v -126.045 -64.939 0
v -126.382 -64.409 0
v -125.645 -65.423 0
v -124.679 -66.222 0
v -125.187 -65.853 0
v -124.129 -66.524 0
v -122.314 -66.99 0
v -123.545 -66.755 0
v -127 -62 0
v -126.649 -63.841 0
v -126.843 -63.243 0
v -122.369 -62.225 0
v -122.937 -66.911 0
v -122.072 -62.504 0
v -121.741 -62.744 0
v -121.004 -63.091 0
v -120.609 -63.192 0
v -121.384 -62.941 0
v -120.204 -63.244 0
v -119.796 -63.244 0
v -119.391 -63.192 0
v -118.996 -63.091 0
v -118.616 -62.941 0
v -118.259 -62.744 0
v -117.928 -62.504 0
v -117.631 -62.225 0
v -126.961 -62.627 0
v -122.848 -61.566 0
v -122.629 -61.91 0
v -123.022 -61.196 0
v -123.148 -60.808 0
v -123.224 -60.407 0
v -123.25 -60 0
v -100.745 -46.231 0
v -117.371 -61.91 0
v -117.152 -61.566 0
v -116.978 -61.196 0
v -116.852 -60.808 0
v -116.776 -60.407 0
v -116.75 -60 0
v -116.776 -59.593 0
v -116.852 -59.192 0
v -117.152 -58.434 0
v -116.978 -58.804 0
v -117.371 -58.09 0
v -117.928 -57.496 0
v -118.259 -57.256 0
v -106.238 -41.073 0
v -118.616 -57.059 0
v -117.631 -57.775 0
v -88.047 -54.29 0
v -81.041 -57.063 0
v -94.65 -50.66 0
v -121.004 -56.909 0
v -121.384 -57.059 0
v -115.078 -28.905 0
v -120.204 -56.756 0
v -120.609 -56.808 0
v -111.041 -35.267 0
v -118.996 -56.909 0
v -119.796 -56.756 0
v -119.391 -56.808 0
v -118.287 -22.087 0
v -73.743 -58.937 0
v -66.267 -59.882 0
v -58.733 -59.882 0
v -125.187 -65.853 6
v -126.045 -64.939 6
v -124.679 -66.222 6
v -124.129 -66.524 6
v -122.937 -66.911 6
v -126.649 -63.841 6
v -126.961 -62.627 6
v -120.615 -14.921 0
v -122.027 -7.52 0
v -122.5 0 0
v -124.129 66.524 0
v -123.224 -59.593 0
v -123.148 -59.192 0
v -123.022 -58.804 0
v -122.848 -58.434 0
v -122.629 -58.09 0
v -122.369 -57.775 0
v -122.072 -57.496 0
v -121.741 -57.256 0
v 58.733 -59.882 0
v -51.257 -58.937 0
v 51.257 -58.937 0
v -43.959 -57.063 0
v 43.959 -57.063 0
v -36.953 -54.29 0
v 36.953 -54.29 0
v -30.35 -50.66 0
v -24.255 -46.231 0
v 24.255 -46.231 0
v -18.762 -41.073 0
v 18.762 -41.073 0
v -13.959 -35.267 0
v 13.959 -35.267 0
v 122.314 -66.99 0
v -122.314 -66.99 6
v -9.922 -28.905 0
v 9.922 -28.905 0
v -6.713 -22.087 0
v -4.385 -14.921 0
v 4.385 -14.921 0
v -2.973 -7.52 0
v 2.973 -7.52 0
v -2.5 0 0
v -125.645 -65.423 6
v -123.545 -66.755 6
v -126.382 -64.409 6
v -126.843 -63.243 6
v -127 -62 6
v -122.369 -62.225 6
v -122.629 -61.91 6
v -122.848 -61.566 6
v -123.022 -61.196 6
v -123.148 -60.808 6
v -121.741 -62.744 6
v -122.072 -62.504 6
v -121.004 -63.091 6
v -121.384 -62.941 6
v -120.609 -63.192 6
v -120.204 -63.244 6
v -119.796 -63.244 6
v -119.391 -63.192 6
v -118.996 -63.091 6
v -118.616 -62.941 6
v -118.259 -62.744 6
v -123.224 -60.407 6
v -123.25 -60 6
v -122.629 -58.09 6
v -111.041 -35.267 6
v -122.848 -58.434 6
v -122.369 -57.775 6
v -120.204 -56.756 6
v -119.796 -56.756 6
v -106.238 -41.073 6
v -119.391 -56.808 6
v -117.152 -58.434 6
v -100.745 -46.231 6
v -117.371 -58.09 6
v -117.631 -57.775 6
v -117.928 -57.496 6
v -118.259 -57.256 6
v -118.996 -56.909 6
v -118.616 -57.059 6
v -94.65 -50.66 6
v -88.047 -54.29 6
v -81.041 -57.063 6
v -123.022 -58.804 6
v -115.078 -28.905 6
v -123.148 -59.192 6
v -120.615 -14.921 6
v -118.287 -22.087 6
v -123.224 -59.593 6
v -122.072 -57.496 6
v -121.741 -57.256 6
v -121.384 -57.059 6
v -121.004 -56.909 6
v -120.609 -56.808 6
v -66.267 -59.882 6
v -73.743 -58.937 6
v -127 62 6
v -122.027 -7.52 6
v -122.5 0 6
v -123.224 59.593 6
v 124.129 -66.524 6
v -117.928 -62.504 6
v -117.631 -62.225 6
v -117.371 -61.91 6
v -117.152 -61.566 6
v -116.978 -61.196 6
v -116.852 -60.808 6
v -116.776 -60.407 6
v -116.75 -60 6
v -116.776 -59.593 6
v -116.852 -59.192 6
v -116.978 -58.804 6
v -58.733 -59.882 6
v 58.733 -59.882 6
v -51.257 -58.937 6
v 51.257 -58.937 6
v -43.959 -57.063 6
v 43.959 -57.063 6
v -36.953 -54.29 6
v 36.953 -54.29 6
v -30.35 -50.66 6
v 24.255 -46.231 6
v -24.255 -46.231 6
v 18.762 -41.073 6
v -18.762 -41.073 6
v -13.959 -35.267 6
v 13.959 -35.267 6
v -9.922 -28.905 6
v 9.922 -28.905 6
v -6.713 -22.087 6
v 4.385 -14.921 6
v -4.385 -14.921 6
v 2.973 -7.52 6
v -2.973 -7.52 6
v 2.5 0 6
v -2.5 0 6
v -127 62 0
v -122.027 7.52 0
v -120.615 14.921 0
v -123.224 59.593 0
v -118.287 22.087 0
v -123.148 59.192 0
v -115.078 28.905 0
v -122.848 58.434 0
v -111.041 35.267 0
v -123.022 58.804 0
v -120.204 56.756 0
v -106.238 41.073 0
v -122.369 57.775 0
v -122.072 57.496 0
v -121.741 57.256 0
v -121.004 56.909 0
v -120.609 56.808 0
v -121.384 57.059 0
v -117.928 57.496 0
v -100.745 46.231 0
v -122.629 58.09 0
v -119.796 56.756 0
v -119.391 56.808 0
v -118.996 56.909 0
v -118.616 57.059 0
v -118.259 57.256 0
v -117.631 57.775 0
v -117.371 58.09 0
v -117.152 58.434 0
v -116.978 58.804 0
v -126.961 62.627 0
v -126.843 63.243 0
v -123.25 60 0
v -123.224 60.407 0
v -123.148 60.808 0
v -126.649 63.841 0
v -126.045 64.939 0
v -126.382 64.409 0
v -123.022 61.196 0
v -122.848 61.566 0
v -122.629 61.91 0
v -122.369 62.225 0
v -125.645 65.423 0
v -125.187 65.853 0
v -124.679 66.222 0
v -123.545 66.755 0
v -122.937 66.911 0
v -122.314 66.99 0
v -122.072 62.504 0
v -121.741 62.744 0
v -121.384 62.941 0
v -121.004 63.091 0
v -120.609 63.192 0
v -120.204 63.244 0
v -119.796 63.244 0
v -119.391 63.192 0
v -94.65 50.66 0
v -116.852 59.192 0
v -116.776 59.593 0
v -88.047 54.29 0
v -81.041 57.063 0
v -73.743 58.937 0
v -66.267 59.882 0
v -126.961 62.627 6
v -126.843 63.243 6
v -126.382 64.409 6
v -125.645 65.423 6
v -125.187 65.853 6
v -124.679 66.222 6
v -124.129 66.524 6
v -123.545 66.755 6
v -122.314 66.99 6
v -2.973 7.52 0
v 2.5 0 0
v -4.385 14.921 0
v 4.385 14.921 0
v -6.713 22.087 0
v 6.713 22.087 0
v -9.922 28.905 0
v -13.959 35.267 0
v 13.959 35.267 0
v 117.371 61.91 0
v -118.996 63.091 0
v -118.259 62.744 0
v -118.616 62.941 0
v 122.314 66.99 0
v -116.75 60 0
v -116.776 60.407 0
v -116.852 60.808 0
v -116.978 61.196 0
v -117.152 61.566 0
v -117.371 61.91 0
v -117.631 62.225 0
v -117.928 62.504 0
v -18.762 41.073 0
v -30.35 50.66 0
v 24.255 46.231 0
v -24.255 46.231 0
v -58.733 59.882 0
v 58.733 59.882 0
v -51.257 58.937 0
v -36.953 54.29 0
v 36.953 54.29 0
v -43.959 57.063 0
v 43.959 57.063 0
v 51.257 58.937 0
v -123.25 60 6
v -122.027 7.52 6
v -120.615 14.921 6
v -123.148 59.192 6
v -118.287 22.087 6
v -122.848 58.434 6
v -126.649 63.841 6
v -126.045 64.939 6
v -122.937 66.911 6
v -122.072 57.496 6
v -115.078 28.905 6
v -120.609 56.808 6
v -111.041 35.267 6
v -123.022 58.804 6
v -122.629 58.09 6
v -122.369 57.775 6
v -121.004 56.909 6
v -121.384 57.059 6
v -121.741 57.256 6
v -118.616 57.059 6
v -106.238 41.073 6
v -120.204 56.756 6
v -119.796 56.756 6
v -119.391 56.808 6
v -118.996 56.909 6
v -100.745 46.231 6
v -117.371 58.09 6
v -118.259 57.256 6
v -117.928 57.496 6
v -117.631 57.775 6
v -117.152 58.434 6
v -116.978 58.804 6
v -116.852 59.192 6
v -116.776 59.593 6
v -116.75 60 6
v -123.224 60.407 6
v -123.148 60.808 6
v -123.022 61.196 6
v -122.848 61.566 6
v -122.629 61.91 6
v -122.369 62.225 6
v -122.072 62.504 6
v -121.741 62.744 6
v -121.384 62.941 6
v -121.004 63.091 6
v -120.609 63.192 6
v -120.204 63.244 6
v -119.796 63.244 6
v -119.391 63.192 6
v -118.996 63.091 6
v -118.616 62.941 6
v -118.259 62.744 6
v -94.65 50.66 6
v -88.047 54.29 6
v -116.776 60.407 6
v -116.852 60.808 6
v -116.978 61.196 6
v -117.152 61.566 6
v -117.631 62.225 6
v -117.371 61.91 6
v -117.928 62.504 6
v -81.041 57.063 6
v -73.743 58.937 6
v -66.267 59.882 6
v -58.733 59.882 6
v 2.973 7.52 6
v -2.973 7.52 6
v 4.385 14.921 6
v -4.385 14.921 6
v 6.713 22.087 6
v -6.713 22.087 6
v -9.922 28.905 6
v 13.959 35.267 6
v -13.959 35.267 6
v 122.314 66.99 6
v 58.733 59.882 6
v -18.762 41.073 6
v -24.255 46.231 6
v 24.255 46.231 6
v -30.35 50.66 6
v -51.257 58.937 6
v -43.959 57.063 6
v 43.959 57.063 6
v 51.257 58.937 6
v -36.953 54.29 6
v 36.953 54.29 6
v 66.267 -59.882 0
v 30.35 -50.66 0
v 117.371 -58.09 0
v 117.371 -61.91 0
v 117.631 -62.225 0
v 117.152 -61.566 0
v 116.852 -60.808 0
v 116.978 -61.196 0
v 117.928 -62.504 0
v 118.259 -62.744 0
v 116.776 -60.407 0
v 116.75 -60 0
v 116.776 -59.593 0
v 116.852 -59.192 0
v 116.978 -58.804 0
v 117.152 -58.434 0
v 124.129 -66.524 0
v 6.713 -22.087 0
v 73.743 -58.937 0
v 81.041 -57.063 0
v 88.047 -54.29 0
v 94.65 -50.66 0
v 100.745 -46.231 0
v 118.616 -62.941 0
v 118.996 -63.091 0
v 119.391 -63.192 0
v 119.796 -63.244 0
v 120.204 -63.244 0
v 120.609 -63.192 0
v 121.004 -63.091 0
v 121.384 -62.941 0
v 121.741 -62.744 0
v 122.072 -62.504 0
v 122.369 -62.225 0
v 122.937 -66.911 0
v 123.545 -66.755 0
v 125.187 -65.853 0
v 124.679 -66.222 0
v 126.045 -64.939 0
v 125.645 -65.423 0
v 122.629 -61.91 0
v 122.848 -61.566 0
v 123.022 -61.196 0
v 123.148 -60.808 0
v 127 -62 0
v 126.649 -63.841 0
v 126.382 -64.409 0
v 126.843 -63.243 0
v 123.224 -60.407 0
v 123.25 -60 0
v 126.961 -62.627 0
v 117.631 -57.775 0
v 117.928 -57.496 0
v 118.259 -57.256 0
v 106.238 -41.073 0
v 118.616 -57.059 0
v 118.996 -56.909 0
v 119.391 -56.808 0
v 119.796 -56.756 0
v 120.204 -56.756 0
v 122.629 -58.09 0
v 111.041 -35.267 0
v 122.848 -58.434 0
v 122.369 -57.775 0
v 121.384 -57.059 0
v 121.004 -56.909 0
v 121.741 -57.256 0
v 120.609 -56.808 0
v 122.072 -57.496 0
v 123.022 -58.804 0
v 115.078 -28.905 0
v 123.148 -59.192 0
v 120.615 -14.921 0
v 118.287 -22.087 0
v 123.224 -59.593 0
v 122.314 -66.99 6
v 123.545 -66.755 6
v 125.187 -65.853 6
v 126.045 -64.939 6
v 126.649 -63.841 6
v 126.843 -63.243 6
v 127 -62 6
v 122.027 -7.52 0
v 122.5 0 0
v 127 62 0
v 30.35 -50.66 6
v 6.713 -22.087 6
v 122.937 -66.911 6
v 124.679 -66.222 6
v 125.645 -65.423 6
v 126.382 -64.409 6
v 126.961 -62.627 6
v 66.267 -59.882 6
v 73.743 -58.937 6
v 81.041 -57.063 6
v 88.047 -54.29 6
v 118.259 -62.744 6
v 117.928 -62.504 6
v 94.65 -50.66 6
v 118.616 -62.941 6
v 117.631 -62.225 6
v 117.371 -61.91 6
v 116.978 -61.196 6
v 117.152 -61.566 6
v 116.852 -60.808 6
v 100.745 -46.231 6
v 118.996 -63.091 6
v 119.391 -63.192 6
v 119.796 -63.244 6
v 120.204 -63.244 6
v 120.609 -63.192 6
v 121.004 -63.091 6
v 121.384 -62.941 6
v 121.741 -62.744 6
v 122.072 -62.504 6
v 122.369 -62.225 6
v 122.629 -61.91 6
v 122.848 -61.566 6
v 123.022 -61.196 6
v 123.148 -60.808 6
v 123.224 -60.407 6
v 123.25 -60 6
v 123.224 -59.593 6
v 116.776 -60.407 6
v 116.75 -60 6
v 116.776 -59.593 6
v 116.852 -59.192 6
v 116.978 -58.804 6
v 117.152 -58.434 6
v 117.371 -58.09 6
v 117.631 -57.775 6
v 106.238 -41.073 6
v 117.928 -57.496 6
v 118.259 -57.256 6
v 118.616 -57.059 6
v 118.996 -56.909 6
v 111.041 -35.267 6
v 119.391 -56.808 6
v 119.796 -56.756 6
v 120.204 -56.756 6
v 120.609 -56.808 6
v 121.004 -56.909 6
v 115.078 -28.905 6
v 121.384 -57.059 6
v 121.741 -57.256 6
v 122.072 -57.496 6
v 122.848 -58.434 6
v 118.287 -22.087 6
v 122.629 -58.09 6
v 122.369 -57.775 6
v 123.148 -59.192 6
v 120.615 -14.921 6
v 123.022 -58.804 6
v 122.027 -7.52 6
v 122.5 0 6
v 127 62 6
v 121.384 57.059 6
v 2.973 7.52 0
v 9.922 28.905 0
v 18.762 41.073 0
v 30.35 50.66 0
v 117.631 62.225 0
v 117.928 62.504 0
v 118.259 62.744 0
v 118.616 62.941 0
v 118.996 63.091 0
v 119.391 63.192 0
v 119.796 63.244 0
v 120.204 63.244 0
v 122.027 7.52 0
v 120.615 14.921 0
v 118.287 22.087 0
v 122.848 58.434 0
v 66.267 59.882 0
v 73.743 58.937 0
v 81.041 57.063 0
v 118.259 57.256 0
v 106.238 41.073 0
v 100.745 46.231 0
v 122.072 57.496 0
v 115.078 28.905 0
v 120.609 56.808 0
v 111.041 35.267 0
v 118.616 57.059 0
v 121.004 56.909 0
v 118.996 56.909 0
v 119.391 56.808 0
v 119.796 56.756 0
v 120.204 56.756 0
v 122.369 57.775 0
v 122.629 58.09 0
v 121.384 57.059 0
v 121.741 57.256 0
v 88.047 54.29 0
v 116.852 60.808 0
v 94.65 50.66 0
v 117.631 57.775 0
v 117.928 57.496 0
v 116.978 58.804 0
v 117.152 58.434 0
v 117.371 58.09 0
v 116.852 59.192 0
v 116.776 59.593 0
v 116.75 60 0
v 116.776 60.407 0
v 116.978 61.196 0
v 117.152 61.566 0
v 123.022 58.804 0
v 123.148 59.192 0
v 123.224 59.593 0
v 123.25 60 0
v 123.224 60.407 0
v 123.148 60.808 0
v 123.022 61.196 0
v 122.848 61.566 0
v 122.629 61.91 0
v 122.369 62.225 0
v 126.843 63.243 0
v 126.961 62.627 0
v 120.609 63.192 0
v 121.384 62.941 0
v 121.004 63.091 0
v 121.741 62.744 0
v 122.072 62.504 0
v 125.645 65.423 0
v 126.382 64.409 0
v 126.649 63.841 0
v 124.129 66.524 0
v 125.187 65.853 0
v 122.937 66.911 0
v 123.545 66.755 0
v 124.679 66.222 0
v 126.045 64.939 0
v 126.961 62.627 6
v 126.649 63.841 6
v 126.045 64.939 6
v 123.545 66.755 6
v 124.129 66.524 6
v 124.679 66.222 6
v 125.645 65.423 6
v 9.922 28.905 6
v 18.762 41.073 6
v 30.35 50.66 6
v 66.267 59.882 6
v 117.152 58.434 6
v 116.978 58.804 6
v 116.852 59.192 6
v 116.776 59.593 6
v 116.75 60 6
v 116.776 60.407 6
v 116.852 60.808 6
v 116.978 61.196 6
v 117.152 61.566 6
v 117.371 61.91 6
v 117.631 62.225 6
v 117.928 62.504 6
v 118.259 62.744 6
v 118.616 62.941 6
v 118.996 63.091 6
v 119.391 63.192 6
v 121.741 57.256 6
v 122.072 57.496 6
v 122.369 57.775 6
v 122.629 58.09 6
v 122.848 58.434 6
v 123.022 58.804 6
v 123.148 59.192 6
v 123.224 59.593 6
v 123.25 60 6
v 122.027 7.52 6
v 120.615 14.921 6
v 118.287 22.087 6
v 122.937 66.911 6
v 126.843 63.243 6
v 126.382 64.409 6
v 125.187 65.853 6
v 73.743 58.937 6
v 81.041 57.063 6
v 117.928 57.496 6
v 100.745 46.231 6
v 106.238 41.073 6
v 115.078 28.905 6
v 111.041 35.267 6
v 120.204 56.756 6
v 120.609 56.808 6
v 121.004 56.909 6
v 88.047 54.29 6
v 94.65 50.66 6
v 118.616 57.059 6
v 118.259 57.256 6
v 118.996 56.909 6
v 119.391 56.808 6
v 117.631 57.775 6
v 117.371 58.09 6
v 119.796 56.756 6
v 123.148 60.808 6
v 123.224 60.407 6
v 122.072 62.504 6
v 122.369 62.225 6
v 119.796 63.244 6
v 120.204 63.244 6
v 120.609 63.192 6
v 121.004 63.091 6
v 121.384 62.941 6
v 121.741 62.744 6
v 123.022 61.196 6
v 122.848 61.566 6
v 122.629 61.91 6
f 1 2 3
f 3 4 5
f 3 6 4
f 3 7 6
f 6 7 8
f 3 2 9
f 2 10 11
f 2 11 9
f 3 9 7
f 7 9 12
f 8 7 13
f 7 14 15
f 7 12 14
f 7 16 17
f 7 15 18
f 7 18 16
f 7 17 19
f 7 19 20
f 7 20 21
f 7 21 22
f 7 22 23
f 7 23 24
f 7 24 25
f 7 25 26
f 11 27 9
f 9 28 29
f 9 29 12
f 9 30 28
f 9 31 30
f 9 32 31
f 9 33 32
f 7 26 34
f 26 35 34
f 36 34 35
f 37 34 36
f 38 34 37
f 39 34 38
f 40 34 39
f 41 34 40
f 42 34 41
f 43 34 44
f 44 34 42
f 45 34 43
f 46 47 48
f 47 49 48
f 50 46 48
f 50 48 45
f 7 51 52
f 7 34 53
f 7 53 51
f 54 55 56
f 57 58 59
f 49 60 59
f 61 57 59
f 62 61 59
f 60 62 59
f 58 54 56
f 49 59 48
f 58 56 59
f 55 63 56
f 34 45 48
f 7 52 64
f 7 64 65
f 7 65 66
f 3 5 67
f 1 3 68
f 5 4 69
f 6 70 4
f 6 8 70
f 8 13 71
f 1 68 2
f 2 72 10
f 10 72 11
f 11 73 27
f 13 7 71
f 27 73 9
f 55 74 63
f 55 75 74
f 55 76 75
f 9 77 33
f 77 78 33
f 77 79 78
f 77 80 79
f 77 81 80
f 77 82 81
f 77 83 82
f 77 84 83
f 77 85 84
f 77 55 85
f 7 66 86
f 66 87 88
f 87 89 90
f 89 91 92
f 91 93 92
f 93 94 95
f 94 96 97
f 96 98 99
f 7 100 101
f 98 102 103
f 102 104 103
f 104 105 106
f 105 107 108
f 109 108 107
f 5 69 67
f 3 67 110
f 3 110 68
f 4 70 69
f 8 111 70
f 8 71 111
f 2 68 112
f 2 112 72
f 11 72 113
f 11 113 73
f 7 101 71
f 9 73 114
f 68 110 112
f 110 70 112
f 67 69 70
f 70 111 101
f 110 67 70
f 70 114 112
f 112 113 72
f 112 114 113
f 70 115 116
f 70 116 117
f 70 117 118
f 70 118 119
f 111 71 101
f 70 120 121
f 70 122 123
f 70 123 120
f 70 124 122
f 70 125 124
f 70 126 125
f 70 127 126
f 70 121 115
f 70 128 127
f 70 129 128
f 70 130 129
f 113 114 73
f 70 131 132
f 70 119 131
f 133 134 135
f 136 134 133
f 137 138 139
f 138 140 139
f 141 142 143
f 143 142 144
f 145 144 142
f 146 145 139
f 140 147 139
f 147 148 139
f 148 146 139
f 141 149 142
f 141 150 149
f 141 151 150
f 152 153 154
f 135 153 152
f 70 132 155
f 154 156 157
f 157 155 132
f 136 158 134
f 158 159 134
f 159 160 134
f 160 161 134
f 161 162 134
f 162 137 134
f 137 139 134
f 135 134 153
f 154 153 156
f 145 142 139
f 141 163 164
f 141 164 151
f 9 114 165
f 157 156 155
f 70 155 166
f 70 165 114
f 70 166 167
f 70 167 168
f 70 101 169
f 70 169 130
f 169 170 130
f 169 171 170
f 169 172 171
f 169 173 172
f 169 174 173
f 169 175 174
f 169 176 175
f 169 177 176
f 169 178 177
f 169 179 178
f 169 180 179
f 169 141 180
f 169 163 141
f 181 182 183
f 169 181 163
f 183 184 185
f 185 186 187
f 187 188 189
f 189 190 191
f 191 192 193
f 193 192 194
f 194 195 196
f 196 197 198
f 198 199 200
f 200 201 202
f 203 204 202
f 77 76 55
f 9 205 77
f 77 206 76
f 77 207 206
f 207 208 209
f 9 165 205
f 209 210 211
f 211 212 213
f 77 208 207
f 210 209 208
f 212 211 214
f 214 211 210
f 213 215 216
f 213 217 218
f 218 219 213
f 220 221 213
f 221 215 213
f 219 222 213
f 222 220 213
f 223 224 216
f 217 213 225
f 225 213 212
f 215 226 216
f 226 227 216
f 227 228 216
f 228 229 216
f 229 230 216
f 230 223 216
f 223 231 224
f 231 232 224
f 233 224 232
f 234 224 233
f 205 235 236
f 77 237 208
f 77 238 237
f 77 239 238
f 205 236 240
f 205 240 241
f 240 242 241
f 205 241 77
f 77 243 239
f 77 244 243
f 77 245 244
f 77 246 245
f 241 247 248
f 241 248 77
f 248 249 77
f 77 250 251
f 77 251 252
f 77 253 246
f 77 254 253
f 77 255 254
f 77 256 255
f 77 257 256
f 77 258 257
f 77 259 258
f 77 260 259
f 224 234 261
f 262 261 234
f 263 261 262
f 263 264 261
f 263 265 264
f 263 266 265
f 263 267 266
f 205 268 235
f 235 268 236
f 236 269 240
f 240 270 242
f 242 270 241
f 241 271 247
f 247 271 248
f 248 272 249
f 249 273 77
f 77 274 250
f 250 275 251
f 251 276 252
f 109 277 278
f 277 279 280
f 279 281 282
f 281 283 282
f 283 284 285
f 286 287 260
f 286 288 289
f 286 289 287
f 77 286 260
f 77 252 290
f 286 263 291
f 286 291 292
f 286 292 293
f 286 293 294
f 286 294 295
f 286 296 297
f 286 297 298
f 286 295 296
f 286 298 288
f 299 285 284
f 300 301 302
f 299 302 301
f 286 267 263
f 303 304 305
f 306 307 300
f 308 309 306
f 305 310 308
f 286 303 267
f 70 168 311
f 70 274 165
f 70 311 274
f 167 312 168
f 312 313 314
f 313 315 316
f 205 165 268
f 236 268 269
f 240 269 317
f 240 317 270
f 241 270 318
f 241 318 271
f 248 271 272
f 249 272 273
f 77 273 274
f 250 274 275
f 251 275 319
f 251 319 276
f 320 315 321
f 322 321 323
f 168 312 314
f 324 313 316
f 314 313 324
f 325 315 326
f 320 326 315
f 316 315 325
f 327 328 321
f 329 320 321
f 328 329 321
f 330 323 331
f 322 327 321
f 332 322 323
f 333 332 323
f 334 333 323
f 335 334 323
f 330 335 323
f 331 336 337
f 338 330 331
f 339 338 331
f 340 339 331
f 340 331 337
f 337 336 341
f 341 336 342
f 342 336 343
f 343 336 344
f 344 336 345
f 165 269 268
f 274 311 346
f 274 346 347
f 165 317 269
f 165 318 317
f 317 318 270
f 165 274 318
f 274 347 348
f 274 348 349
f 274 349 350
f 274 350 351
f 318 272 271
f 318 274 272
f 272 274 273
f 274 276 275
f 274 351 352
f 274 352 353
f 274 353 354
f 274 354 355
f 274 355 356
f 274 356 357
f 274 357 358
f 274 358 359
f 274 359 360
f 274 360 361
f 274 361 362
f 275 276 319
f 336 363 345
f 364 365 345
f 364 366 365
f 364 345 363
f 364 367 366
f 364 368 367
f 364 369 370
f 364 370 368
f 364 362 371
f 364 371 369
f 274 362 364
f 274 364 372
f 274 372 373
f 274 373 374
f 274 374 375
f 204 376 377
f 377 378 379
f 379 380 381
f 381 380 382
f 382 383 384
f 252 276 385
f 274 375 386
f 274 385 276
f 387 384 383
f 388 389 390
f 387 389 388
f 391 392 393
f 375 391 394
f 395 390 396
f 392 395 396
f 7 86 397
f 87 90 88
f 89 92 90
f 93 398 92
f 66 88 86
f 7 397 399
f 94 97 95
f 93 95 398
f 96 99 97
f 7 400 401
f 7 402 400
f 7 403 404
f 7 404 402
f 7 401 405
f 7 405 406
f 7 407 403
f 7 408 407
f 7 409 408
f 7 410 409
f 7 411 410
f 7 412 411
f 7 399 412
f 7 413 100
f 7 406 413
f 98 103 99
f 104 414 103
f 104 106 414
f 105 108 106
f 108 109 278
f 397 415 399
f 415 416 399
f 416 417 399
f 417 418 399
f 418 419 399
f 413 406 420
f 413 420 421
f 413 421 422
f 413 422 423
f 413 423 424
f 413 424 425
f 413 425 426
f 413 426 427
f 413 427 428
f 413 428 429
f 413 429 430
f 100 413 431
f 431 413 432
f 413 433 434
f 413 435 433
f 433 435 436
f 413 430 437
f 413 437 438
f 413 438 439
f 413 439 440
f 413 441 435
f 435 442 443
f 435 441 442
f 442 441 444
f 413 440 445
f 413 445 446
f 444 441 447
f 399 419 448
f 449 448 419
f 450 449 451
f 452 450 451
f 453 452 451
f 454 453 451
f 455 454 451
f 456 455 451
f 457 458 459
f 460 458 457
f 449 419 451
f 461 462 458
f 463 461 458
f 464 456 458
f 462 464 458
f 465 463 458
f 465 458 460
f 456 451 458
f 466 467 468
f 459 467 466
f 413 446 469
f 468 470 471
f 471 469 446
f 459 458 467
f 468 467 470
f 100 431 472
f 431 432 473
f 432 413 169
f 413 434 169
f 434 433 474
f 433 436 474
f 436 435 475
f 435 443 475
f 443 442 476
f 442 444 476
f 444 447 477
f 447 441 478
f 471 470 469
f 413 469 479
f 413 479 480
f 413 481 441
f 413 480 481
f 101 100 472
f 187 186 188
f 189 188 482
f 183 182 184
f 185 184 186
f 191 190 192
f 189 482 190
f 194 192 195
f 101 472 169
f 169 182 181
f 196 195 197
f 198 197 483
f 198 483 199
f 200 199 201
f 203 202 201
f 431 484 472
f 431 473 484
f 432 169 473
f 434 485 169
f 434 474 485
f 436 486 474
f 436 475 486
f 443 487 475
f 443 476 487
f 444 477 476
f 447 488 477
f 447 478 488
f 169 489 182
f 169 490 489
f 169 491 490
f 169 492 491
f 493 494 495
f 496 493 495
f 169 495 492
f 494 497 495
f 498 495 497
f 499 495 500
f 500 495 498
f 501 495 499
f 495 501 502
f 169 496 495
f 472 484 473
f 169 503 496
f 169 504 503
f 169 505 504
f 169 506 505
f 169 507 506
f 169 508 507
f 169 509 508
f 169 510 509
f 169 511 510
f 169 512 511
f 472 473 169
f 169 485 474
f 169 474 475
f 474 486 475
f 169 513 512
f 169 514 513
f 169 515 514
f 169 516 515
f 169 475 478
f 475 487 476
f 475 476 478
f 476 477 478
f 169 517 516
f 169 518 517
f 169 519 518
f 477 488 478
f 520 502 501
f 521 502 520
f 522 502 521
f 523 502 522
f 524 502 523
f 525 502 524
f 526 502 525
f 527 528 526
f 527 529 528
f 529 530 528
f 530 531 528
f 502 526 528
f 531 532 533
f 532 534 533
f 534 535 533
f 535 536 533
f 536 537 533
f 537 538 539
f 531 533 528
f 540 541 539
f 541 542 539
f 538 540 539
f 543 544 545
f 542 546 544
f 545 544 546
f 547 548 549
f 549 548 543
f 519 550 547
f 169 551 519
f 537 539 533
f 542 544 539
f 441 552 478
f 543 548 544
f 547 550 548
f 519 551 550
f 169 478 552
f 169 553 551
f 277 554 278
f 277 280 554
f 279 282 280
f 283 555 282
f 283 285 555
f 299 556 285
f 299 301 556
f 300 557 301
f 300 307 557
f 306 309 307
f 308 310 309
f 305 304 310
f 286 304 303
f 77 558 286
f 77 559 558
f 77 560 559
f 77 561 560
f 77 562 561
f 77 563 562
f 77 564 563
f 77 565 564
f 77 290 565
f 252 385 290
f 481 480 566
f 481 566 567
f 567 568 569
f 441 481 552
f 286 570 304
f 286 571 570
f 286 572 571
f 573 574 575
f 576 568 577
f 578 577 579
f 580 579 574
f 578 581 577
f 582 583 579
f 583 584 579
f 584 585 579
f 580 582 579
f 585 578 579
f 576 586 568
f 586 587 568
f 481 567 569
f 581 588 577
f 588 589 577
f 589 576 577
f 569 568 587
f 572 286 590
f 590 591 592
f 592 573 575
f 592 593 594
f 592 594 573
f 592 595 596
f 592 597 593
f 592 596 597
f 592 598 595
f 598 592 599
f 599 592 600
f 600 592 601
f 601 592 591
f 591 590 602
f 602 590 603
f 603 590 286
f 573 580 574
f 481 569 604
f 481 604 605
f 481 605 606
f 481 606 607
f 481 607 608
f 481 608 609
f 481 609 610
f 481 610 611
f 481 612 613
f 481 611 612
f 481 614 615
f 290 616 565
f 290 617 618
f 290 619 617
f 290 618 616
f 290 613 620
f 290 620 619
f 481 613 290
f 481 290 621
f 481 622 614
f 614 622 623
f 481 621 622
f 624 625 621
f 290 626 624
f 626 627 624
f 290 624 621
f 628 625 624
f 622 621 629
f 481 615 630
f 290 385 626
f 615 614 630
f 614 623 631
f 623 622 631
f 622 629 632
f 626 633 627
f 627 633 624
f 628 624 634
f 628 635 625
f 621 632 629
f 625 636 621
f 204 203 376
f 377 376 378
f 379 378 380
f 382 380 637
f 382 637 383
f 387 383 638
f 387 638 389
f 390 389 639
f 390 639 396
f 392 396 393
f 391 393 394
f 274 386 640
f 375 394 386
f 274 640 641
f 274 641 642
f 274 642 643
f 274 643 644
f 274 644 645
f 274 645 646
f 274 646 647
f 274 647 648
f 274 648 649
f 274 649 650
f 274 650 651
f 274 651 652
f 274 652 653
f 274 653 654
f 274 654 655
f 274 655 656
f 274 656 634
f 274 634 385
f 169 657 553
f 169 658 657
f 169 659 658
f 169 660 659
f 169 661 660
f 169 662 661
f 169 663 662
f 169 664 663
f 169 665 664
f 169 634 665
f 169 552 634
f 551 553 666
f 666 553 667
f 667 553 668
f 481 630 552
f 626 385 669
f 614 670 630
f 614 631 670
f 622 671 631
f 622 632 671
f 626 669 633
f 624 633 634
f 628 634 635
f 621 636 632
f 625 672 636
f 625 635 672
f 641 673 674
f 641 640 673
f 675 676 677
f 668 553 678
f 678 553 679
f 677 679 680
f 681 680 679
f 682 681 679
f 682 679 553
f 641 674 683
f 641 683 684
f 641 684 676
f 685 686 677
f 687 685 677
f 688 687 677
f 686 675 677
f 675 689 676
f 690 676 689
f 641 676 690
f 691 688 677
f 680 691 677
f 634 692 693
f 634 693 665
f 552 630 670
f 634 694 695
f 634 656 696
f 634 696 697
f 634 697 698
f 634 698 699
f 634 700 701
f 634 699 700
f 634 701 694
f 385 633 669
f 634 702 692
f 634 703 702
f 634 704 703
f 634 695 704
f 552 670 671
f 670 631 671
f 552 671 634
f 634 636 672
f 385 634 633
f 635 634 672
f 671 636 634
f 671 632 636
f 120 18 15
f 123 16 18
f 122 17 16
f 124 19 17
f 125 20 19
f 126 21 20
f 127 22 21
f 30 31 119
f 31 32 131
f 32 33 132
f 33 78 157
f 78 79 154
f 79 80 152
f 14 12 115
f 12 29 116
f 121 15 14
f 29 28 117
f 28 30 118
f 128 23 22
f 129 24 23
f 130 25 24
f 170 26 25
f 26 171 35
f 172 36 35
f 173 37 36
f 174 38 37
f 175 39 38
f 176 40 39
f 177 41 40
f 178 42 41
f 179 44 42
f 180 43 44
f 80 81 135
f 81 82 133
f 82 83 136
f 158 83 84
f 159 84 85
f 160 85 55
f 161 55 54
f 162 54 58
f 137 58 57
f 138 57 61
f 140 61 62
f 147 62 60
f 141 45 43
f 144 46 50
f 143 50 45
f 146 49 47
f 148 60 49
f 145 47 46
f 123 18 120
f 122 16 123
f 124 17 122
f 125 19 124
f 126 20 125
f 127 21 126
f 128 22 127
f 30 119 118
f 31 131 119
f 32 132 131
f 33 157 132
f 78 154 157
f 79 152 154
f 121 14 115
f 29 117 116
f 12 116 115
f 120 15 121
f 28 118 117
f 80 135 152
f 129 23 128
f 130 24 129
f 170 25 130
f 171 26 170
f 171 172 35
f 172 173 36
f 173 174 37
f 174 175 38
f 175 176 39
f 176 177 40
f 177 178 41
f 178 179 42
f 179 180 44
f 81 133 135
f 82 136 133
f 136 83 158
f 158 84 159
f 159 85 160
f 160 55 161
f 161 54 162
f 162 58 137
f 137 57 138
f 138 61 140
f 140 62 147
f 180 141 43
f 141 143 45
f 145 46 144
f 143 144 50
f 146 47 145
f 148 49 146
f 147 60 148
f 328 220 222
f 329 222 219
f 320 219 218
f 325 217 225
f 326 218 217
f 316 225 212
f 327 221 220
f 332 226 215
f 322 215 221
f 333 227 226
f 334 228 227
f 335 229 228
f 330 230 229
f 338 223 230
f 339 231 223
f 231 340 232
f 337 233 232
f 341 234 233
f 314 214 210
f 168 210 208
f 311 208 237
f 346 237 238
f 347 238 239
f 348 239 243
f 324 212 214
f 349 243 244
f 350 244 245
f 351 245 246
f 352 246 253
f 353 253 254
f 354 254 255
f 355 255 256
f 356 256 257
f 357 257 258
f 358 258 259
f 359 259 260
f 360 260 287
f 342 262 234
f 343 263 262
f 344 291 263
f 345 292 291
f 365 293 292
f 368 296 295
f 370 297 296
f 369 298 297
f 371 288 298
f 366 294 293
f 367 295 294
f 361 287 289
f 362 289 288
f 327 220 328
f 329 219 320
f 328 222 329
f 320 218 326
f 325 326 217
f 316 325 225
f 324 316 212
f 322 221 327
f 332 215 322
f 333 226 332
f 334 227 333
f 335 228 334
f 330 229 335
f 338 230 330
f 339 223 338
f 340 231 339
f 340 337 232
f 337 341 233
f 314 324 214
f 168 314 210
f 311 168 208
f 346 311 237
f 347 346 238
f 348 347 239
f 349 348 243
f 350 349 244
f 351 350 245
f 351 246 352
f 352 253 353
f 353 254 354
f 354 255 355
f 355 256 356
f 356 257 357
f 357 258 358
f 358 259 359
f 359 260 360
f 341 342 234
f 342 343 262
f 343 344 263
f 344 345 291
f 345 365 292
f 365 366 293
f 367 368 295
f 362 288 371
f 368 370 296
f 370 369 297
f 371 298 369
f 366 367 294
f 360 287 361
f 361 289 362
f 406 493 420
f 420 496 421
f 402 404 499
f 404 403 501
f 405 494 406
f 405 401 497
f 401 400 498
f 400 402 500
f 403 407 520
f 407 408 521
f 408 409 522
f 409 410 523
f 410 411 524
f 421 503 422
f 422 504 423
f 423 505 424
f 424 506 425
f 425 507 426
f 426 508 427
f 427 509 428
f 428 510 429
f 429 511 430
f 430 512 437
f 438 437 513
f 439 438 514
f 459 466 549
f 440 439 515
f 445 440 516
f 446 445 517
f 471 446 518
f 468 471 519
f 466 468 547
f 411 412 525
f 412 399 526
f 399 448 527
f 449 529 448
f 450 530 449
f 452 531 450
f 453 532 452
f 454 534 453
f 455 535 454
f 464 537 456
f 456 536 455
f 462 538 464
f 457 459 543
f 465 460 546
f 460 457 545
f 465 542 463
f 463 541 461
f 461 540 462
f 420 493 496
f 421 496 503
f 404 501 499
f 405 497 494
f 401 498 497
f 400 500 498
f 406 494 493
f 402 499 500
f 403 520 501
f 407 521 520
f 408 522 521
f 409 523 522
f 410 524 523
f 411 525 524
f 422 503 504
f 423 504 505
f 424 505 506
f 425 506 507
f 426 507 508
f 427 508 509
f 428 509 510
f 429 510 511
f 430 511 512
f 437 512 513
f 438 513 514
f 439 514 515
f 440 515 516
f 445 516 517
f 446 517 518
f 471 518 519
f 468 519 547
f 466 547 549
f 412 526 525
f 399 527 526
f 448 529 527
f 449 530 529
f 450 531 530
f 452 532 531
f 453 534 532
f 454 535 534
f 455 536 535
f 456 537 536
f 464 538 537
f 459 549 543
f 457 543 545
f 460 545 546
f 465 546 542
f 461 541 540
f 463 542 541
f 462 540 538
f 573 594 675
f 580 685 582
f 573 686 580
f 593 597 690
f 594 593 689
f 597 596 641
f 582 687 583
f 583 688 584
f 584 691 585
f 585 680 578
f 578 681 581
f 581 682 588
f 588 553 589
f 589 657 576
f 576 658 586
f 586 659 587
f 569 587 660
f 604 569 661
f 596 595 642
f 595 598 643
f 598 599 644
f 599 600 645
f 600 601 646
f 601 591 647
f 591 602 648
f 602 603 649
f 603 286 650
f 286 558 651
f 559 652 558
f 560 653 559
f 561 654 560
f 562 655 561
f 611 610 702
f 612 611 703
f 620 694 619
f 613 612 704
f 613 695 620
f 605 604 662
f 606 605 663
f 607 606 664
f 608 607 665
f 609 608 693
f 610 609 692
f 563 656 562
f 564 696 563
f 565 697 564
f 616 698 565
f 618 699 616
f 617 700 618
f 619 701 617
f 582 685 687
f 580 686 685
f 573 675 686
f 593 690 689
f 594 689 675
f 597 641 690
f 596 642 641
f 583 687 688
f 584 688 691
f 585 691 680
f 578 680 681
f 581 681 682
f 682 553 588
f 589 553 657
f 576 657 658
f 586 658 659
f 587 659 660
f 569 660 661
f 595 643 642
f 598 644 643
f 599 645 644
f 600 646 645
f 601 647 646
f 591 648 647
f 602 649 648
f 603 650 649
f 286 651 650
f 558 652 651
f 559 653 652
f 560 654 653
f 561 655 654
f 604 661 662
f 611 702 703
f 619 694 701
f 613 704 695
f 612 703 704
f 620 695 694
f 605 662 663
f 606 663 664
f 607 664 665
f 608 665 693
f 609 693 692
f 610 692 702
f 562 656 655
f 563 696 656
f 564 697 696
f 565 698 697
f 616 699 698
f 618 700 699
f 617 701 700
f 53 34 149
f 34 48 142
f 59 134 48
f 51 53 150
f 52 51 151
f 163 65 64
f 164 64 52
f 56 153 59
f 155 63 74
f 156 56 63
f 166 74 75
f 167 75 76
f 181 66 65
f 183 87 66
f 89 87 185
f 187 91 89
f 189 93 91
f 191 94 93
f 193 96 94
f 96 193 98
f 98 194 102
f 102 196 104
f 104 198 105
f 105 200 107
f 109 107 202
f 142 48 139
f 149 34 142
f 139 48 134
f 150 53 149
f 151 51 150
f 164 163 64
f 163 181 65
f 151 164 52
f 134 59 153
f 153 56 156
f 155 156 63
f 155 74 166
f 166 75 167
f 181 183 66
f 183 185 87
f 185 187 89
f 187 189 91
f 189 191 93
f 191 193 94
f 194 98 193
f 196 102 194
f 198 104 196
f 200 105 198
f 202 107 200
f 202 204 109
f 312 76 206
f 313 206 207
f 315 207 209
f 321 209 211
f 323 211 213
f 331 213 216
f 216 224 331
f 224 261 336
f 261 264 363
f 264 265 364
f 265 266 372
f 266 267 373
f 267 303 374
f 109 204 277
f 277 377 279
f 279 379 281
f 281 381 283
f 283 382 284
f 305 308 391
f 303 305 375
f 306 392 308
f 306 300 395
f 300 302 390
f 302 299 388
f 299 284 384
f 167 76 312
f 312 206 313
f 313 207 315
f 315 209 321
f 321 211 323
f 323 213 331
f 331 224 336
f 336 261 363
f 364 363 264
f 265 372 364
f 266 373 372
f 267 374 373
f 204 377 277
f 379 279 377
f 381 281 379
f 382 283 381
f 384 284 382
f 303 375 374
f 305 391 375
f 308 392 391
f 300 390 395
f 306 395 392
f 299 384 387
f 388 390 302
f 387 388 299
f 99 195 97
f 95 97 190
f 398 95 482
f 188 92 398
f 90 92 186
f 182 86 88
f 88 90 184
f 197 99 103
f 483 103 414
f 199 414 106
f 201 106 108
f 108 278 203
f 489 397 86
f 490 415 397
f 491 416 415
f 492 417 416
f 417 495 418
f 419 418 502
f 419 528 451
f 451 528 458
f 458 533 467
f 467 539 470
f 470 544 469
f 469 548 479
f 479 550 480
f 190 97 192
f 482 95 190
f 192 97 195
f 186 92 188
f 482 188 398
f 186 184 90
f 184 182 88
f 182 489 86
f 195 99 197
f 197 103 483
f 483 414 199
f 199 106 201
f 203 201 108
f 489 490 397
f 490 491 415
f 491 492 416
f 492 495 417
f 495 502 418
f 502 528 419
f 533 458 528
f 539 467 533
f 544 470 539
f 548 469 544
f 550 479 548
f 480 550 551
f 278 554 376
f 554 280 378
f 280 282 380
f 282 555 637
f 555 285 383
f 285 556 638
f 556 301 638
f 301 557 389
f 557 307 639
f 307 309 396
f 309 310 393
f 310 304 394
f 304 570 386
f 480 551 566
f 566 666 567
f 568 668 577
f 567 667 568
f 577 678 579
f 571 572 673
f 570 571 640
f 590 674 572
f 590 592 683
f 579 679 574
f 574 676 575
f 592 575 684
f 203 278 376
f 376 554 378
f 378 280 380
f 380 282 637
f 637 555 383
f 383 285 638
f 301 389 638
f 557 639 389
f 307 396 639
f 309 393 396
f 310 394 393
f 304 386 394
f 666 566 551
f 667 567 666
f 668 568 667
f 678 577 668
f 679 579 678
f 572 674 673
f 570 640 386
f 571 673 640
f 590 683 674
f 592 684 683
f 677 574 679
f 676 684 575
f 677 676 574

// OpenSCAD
$fn = 50;

difference() {
	union() {
		hull() {
			translate(v = [-122.0, 62.0, 0]) {
				cylinder(h = 6, r = 5);
			}
			translate(v = [122.0, 62.0, 0]) {
				cylinder(h = 6, r = 5);
			}
			translate(v = [-122.0, -62.0, 0]) {
				cylinder(h = 6, r = 5);
			}
			translate(v = [122.0, -62.0, 0]) {
				cylinder(h = 6, r = 5);
			}
		}
	}
	union() {
		translate(v = [-120.0, -60.0, -100.0]) {
			cylinder(h = 200, r = 3.25);
		}
		translate(v = [-120.0, 60.0, -100.0]) {
			cylinder(h = 200, r = 3.25);
		}
		translate(v = [120.0, -60.0, -100.0]) {
			cylinder(h = 200, r = 3.25);
		}
		translate(v = [120.0, 60.0, -100.0]) {
			cylinder(h = 200, r = 3.25);
		}
		translate(v = [-120.0, -60.0, -100.0]) {
			cylinder(h = 200, r = 1.8);
		}
		translate(v = [-120.0, 60.0, -100.0]) {
			cylinder(h = 200, r = 1.8);
		}
		translate(v = [120.0, -60.0, -100.0]) {
			cylinder(h = 200, r = 1.8);
		}
		translate(v = [120.0, 60.0, -100.0]) {
			cylinder(h = 200, r = 1.8);
		}
		translate(v = [-62.5, 0, 0.0]) {
			cylinder(h = 6, r = 60.0);
		}
		translate(v = [62.5, 0, 0.0]) {
			cylinder(h = 6, r = 60.0);
		}
	}
}
